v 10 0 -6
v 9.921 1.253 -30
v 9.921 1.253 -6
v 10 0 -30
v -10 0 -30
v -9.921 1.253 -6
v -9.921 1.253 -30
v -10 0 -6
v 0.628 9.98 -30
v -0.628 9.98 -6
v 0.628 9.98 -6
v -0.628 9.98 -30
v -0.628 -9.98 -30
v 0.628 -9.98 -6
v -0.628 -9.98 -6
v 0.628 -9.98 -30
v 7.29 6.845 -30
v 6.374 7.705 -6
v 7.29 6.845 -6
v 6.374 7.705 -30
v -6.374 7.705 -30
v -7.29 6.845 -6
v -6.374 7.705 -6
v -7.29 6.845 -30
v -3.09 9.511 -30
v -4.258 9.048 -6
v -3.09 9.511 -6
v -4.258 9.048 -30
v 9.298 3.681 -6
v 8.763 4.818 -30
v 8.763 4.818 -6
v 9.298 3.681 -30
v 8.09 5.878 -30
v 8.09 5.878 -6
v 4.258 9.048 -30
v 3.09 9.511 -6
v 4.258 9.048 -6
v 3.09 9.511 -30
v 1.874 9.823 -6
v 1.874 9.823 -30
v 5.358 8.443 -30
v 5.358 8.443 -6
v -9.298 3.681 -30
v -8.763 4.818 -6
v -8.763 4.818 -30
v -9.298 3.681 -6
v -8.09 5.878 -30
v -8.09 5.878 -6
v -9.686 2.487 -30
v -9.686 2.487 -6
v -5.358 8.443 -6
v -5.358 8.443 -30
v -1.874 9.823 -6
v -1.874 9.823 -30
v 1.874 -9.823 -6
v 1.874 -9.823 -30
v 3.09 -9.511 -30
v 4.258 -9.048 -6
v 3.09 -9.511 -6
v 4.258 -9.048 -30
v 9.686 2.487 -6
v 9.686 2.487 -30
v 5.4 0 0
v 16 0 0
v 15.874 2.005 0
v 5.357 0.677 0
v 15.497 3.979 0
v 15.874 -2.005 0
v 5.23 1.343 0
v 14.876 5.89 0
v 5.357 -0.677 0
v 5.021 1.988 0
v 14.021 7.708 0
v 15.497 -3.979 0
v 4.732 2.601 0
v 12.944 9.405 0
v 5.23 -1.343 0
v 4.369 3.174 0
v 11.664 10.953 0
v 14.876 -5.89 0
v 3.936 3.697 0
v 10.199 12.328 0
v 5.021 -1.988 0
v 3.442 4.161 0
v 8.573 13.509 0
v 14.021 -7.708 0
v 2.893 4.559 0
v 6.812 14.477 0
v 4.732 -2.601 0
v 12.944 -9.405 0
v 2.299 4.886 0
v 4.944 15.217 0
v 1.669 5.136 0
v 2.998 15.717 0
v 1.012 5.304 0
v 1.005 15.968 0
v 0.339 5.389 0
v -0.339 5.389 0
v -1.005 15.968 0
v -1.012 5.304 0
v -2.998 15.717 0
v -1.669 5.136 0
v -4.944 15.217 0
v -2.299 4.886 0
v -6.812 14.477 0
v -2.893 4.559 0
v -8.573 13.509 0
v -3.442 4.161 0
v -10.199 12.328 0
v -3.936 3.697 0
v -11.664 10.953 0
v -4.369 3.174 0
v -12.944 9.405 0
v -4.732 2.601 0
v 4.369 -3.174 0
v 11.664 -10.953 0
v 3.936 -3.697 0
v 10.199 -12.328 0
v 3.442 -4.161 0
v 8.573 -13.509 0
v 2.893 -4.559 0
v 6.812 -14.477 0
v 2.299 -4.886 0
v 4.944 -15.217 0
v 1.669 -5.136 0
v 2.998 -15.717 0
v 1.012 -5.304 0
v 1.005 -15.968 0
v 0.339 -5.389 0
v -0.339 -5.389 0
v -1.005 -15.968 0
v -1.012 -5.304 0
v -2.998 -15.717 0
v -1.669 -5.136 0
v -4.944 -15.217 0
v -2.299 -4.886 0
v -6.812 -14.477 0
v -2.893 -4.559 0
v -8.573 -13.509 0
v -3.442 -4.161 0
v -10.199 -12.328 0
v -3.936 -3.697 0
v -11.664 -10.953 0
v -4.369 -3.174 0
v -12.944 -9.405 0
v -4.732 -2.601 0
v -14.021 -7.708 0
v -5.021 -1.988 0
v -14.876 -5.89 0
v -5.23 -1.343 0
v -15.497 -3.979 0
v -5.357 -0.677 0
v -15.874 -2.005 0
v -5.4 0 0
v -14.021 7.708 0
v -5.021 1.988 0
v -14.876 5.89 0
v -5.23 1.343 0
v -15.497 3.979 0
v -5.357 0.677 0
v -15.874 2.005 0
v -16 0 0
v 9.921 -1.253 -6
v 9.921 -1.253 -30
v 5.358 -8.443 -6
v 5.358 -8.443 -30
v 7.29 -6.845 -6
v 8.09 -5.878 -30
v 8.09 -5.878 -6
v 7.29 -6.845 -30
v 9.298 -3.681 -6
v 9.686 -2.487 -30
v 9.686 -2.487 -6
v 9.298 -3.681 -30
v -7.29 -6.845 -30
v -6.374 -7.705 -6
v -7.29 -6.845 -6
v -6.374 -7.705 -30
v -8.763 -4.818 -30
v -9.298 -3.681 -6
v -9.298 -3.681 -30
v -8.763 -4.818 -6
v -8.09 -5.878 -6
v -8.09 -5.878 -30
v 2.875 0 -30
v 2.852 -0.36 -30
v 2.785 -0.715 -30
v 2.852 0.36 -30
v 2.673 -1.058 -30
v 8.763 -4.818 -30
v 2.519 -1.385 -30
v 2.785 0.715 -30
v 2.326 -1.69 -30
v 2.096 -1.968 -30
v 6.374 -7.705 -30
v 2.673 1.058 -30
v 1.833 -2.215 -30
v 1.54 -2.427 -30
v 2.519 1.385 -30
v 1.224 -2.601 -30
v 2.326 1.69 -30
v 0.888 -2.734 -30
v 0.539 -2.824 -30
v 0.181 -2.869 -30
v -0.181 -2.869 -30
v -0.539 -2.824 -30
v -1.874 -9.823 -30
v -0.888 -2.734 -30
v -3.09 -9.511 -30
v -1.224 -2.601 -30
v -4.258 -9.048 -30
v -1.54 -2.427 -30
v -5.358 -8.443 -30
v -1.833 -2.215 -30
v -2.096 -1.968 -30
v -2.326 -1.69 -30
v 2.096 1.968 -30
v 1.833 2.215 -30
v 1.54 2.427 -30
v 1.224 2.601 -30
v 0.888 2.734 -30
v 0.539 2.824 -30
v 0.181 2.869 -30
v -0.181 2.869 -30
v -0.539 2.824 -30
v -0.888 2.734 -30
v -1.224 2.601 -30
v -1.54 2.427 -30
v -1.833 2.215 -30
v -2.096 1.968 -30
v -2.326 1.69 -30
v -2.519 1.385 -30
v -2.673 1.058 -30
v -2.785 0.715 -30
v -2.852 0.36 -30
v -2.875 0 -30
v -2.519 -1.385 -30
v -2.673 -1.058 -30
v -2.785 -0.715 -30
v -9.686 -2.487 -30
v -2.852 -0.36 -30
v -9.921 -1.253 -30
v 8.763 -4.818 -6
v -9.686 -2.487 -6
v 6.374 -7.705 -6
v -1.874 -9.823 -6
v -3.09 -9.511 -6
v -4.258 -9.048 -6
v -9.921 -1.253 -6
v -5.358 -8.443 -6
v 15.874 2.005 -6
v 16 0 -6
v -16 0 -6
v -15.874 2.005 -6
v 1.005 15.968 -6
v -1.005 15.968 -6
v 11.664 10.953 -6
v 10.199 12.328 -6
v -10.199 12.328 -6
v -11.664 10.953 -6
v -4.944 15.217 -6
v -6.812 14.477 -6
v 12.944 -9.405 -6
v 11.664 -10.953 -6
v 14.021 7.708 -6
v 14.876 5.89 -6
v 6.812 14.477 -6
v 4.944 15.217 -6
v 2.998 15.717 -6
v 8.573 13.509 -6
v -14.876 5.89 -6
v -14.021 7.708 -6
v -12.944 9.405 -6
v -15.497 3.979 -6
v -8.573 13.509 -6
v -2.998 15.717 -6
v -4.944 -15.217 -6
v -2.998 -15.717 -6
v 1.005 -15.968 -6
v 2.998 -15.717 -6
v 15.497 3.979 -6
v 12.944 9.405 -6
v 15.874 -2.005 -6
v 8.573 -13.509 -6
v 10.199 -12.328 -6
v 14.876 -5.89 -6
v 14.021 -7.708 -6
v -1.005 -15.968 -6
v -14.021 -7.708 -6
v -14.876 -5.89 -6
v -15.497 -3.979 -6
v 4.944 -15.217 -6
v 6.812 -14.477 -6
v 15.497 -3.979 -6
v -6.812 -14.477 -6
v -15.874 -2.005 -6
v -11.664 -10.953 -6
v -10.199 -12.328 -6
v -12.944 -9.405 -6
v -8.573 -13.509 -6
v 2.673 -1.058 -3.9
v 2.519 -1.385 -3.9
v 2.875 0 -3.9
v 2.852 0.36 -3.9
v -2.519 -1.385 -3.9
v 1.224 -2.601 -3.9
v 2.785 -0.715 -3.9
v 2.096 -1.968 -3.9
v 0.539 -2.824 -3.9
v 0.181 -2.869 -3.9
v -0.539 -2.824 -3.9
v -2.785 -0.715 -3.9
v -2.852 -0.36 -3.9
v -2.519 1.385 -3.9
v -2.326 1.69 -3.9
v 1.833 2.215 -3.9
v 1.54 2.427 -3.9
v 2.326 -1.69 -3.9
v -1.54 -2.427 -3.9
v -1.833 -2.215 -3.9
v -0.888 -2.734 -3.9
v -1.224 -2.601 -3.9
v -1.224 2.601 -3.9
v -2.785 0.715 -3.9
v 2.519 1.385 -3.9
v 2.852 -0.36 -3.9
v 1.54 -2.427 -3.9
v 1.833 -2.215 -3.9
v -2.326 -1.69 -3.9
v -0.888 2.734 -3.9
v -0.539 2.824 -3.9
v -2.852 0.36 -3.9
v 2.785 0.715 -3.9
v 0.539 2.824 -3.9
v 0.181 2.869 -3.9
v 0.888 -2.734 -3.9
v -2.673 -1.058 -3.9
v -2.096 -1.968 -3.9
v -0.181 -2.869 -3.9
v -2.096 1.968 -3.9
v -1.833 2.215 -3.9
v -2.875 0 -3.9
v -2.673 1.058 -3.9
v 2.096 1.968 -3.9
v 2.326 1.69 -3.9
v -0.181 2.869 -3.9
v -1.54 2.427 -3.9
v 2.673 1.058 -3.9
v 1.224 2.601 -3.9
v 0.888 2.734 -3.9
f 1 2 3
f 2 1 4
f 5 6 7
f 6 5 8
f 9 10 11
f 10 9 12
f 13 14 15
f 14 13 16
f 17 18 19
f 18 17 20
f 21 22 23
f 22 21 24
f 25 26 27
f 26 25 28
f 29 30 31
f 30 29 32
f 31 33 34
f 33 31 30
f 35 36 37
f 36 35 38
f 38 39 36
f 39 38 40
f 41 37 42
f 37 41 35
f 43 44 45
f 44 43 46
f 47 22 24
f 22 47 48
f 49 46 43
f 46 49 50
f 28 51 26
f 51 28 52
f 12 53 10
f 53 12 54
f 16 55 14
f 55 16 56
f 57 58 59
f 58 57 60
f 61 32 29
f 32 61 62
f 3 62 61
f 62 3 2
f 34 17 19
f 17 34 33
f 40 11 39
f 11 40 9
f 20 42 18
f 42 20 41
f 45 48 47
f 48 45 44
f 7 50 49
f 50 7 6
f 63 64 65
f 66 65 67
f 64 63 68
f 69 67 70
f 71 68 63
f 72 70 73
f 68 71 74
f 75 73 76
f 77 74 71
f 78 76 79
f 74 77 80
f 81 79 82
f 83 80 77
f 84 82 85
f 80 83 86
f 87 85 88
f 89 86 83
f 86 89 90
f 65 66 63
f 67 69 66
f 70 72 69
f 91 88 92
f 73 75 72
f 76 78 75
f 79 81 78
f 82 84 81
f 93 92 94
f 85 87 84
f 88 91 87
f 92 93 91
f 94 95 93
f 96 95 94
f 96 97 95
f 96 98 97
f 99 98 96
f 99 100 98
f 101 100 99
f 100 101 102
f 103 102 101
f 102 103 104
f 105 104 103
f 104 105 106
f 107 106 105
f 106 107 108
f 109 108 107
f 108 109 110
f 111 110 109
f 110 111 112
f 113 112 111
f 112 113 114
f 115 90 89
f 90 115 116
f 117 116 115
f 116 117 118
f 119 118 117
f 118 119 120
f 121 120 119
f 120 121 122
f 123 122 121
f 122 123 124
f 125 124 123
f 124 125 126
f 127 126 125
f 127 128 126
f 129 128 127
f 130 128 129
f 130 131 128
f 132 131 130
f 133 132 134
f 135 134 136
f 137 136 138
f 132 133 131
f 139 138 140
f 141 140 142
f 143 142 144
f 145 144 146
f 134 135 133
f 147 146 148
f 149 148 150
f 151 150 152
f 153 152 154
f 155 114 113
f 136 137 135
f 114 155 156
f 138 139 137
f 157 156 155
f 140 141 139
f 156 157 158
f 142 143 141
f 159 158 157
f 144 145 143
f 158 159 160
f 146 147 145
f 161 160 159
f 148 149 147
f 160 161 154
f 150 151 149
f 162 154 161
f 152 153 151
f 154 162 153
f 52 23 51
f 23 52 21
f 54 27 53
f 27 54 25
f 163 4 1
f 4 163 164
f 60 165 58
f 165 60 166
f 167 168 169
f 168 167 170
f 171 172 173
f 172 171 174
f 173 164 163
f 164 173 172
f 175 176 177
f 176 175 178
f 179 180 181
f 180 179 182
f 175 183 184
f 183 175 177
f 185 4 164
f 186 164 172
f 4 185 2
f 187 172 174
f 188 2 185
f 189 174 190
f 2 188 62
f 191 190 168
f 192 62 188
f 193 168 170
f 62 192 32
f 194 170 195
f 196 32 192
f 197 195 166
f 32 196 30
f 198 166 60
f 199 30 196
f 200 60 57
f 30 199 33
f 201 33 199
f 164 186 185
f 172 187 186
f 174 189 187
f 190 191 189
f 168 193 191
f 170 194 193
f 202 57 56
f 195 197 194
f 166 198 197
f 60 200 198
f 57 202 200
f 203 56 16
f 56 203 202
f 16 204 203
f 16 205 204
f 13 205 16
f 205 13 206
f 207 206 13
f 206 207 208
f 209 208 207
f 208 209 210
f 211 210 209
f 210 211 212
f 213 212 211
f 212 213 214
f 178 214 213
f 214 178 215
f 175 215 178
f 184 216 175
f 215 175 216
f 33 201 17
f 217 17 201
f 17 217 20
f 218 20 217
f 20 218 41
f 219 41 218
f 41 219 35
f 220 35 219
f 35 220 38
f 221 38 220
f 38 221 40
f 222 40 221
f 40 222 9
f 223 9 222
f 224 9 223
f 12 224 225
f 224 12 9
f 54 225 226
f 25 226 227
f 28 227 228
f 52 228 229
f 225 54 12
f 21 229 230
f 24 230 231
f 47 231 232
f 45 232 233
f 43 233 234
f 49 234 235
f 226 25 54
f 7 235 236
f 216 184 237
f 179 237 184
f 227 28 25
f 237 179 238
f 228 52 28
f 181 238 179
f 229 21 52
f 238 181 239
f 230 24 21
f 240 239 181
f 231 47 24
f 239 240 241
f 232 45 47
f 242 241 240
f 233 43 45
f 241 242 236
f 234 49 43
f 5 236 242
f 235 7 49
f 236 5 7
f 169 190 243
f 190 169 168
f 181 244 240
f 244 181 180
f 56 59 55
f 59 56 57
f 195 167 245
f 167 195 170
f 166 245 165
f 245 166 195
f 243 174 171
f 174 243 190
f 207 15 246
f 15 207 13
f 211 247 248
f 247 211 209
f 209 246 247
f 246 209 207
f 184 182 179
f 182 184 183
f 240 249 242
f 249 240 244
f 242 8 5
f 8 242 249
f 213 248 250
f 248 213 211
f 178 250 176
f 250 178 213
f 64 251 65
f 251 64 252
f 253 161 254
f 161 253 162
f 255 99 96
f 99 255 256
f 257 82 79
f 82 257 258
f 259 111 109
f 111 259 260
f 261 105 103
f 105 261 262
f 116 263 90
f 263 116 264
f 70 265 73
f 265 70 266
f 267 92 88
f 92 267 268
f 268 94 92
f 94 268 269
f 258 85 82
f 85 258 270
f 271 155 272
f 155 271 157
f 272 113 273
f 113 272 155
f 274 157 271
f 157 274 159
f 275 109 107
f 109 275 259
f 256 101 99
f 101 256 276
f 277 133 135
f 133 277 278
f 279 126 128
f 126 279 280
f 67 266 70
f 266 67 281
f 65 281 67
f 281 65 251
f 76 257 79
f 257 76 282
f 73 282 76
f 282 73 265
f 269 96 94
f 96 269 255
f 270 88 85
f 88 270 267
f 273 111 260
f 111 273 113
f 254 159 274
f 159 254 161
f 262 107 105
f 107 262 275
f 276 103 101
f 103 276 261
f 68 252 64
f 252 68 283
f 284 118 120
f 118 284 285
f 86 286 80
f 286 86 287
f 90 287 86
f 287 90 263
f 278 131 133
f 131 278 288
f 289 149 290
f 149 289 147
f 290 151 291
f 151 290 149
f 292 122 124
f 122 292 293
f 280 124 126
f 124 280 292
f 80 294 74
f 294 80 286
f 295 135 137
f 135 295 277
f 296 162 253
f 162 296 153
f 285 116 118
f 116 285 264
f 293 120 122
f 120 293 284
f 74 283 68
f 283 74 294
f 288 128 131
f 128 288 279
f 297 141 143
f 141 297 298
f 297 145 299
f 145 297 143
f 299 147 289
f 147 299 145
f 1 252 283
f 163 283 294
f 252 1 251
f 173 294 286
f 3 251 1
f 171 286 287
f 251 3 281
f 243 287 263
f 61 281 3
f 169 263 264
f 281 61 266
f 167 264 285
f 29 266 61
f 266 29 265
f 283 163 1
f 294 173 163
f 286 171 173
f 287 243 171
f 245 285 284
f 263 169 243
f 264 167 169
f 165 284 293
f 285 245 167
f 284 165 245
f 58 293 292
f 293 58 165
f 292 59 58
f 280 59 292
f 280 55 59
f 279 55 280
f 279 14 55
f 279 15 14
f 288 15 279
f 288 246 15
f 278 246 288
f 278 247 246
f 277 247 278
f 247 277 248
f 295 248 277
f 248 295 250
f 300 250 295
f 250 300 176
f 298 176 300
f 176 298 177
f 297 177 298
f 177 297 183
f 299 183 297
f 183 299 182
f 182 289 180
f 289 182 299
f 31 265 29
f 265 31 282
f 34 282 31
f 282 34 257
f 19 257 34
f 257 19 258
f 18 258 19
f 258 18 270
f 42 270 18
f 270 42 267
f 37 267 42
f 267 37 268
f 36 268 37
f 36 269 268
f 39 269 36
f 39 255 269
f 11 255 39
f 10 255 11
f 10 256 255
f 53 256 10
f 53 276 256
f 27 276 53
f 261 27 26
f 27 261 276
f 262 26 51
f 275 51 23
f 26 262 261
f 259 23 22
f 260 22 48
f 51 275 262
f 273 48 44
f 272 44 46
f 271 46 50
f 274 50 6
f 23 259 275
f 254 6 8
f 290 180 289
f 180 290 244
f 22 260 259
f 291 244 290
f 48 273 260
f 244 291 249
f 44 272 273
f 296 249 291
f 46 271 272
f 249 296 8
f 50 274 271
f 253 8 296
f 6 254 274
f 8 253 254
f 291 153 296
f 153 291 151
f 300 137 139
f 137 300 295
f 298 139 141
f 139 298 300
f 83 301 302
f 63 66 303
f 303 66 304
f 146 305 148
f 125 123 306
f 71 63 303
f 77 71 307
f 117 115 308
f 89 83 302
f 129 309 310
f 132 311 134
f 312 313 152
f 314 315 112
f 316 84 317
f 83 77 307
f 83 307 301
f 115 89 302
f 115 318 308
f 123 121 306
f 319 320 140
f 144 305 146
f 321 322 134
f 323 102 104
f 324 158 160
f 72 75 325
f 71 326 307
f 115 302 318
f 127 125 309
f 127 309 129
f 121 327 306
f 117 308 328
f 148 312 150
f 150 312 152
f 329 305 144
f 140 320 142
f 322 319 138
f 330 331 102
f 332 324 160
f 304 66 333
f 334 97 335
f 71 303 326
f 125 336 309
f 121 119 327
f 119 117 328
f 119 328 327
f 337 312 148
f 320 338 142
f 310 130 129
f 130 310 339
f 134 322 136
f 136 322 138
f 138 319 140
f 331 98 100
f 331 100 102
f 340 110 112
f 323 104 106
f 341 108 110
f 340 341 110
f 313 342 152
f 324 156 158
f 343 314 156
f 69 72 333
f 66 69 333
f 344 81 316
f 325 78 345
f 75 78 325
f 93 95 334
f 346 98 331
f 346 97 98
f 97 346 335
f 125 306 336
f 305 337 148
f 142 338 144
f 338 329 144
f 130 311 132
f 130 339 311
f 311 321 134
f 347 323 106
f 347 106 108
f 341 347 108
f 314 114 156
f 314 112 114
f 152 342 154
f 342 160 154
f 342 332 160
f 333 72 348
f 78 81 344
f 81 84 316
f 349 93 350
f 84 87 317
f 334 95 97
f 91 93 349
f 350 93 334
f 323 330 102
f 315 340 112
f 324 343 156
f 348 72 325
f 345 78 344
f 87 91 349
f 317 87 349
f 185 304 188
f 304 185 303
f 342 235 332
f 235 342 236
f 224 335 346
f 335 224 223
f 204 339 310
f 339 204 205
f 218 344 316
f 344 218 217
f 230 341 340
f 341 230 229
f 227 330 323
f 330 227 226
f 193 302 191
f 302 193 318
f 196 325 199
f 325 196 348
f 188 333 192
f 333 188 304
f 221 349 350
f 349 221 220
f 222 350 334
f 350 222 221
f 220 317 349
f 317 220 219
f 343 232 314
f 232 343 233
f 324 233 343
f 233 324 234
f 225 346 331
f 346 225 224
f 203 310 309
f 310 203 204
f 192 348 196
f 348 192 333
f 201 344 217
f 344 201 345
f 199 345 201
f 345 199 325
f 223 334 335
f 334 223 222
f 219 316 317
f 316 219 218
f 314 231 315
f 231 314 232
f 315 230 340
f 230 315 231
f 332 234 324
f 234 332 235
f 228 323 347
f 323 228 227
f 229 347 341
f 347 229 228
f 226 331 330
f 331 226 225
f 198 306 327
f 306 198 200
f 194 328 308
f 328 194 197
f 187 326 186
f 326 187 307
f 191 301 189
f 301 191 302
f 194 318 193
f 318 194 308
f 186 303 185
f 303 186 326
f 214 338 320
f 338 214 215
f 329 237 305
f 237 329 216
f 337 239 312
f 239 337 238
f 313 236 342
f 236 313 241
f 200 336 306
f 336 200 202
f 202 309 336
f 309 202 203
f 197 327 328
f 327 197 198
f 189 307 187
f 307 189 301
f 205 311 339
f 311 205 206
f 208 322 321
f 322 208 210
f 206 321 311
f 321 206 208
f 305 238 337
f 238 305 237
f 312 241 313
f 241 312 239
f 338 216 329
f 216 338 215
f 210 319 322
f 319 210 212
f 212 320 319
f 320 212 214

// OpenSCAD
$fn = 50;


difference() {
	union() {
		translate(v = [0, 0, -30.0000000000]) {
			cylinder(h = 30, r = 10.0000000000);
		}
		translate(v = [0, 0, -6.0000000000]) {
			cylinder(h = 6, r = 16.0000000000);
		}
	}
	union() {
		translate(v = [0, 0, 0]) {
			rotate(a = [0, 0, 0]) {
				difference() {
					union() {
						#translate(v = [0, 0, -30.0000000000]) {
							cylinder(h = 30, r = 2.6000000000);
						}
						#translate(v = [0, 0, -3.9000000000]) {
							cylinder(h = 3.9000000000, r = 10.0000000000, r1 = 2.8750000000, r2 = 5.4000000000);
						}
						#translate(v = [0, 0, -30.0000000000]) {
							cylinder(h = 30, r = 2.8750000000);
						}
						#translate(v = [0, 0, -30.0000000000]) {
							cylinder(h = 30, r = 2.6000000000);
						}
					}
					union();
				}
			}
		}
	}
}
